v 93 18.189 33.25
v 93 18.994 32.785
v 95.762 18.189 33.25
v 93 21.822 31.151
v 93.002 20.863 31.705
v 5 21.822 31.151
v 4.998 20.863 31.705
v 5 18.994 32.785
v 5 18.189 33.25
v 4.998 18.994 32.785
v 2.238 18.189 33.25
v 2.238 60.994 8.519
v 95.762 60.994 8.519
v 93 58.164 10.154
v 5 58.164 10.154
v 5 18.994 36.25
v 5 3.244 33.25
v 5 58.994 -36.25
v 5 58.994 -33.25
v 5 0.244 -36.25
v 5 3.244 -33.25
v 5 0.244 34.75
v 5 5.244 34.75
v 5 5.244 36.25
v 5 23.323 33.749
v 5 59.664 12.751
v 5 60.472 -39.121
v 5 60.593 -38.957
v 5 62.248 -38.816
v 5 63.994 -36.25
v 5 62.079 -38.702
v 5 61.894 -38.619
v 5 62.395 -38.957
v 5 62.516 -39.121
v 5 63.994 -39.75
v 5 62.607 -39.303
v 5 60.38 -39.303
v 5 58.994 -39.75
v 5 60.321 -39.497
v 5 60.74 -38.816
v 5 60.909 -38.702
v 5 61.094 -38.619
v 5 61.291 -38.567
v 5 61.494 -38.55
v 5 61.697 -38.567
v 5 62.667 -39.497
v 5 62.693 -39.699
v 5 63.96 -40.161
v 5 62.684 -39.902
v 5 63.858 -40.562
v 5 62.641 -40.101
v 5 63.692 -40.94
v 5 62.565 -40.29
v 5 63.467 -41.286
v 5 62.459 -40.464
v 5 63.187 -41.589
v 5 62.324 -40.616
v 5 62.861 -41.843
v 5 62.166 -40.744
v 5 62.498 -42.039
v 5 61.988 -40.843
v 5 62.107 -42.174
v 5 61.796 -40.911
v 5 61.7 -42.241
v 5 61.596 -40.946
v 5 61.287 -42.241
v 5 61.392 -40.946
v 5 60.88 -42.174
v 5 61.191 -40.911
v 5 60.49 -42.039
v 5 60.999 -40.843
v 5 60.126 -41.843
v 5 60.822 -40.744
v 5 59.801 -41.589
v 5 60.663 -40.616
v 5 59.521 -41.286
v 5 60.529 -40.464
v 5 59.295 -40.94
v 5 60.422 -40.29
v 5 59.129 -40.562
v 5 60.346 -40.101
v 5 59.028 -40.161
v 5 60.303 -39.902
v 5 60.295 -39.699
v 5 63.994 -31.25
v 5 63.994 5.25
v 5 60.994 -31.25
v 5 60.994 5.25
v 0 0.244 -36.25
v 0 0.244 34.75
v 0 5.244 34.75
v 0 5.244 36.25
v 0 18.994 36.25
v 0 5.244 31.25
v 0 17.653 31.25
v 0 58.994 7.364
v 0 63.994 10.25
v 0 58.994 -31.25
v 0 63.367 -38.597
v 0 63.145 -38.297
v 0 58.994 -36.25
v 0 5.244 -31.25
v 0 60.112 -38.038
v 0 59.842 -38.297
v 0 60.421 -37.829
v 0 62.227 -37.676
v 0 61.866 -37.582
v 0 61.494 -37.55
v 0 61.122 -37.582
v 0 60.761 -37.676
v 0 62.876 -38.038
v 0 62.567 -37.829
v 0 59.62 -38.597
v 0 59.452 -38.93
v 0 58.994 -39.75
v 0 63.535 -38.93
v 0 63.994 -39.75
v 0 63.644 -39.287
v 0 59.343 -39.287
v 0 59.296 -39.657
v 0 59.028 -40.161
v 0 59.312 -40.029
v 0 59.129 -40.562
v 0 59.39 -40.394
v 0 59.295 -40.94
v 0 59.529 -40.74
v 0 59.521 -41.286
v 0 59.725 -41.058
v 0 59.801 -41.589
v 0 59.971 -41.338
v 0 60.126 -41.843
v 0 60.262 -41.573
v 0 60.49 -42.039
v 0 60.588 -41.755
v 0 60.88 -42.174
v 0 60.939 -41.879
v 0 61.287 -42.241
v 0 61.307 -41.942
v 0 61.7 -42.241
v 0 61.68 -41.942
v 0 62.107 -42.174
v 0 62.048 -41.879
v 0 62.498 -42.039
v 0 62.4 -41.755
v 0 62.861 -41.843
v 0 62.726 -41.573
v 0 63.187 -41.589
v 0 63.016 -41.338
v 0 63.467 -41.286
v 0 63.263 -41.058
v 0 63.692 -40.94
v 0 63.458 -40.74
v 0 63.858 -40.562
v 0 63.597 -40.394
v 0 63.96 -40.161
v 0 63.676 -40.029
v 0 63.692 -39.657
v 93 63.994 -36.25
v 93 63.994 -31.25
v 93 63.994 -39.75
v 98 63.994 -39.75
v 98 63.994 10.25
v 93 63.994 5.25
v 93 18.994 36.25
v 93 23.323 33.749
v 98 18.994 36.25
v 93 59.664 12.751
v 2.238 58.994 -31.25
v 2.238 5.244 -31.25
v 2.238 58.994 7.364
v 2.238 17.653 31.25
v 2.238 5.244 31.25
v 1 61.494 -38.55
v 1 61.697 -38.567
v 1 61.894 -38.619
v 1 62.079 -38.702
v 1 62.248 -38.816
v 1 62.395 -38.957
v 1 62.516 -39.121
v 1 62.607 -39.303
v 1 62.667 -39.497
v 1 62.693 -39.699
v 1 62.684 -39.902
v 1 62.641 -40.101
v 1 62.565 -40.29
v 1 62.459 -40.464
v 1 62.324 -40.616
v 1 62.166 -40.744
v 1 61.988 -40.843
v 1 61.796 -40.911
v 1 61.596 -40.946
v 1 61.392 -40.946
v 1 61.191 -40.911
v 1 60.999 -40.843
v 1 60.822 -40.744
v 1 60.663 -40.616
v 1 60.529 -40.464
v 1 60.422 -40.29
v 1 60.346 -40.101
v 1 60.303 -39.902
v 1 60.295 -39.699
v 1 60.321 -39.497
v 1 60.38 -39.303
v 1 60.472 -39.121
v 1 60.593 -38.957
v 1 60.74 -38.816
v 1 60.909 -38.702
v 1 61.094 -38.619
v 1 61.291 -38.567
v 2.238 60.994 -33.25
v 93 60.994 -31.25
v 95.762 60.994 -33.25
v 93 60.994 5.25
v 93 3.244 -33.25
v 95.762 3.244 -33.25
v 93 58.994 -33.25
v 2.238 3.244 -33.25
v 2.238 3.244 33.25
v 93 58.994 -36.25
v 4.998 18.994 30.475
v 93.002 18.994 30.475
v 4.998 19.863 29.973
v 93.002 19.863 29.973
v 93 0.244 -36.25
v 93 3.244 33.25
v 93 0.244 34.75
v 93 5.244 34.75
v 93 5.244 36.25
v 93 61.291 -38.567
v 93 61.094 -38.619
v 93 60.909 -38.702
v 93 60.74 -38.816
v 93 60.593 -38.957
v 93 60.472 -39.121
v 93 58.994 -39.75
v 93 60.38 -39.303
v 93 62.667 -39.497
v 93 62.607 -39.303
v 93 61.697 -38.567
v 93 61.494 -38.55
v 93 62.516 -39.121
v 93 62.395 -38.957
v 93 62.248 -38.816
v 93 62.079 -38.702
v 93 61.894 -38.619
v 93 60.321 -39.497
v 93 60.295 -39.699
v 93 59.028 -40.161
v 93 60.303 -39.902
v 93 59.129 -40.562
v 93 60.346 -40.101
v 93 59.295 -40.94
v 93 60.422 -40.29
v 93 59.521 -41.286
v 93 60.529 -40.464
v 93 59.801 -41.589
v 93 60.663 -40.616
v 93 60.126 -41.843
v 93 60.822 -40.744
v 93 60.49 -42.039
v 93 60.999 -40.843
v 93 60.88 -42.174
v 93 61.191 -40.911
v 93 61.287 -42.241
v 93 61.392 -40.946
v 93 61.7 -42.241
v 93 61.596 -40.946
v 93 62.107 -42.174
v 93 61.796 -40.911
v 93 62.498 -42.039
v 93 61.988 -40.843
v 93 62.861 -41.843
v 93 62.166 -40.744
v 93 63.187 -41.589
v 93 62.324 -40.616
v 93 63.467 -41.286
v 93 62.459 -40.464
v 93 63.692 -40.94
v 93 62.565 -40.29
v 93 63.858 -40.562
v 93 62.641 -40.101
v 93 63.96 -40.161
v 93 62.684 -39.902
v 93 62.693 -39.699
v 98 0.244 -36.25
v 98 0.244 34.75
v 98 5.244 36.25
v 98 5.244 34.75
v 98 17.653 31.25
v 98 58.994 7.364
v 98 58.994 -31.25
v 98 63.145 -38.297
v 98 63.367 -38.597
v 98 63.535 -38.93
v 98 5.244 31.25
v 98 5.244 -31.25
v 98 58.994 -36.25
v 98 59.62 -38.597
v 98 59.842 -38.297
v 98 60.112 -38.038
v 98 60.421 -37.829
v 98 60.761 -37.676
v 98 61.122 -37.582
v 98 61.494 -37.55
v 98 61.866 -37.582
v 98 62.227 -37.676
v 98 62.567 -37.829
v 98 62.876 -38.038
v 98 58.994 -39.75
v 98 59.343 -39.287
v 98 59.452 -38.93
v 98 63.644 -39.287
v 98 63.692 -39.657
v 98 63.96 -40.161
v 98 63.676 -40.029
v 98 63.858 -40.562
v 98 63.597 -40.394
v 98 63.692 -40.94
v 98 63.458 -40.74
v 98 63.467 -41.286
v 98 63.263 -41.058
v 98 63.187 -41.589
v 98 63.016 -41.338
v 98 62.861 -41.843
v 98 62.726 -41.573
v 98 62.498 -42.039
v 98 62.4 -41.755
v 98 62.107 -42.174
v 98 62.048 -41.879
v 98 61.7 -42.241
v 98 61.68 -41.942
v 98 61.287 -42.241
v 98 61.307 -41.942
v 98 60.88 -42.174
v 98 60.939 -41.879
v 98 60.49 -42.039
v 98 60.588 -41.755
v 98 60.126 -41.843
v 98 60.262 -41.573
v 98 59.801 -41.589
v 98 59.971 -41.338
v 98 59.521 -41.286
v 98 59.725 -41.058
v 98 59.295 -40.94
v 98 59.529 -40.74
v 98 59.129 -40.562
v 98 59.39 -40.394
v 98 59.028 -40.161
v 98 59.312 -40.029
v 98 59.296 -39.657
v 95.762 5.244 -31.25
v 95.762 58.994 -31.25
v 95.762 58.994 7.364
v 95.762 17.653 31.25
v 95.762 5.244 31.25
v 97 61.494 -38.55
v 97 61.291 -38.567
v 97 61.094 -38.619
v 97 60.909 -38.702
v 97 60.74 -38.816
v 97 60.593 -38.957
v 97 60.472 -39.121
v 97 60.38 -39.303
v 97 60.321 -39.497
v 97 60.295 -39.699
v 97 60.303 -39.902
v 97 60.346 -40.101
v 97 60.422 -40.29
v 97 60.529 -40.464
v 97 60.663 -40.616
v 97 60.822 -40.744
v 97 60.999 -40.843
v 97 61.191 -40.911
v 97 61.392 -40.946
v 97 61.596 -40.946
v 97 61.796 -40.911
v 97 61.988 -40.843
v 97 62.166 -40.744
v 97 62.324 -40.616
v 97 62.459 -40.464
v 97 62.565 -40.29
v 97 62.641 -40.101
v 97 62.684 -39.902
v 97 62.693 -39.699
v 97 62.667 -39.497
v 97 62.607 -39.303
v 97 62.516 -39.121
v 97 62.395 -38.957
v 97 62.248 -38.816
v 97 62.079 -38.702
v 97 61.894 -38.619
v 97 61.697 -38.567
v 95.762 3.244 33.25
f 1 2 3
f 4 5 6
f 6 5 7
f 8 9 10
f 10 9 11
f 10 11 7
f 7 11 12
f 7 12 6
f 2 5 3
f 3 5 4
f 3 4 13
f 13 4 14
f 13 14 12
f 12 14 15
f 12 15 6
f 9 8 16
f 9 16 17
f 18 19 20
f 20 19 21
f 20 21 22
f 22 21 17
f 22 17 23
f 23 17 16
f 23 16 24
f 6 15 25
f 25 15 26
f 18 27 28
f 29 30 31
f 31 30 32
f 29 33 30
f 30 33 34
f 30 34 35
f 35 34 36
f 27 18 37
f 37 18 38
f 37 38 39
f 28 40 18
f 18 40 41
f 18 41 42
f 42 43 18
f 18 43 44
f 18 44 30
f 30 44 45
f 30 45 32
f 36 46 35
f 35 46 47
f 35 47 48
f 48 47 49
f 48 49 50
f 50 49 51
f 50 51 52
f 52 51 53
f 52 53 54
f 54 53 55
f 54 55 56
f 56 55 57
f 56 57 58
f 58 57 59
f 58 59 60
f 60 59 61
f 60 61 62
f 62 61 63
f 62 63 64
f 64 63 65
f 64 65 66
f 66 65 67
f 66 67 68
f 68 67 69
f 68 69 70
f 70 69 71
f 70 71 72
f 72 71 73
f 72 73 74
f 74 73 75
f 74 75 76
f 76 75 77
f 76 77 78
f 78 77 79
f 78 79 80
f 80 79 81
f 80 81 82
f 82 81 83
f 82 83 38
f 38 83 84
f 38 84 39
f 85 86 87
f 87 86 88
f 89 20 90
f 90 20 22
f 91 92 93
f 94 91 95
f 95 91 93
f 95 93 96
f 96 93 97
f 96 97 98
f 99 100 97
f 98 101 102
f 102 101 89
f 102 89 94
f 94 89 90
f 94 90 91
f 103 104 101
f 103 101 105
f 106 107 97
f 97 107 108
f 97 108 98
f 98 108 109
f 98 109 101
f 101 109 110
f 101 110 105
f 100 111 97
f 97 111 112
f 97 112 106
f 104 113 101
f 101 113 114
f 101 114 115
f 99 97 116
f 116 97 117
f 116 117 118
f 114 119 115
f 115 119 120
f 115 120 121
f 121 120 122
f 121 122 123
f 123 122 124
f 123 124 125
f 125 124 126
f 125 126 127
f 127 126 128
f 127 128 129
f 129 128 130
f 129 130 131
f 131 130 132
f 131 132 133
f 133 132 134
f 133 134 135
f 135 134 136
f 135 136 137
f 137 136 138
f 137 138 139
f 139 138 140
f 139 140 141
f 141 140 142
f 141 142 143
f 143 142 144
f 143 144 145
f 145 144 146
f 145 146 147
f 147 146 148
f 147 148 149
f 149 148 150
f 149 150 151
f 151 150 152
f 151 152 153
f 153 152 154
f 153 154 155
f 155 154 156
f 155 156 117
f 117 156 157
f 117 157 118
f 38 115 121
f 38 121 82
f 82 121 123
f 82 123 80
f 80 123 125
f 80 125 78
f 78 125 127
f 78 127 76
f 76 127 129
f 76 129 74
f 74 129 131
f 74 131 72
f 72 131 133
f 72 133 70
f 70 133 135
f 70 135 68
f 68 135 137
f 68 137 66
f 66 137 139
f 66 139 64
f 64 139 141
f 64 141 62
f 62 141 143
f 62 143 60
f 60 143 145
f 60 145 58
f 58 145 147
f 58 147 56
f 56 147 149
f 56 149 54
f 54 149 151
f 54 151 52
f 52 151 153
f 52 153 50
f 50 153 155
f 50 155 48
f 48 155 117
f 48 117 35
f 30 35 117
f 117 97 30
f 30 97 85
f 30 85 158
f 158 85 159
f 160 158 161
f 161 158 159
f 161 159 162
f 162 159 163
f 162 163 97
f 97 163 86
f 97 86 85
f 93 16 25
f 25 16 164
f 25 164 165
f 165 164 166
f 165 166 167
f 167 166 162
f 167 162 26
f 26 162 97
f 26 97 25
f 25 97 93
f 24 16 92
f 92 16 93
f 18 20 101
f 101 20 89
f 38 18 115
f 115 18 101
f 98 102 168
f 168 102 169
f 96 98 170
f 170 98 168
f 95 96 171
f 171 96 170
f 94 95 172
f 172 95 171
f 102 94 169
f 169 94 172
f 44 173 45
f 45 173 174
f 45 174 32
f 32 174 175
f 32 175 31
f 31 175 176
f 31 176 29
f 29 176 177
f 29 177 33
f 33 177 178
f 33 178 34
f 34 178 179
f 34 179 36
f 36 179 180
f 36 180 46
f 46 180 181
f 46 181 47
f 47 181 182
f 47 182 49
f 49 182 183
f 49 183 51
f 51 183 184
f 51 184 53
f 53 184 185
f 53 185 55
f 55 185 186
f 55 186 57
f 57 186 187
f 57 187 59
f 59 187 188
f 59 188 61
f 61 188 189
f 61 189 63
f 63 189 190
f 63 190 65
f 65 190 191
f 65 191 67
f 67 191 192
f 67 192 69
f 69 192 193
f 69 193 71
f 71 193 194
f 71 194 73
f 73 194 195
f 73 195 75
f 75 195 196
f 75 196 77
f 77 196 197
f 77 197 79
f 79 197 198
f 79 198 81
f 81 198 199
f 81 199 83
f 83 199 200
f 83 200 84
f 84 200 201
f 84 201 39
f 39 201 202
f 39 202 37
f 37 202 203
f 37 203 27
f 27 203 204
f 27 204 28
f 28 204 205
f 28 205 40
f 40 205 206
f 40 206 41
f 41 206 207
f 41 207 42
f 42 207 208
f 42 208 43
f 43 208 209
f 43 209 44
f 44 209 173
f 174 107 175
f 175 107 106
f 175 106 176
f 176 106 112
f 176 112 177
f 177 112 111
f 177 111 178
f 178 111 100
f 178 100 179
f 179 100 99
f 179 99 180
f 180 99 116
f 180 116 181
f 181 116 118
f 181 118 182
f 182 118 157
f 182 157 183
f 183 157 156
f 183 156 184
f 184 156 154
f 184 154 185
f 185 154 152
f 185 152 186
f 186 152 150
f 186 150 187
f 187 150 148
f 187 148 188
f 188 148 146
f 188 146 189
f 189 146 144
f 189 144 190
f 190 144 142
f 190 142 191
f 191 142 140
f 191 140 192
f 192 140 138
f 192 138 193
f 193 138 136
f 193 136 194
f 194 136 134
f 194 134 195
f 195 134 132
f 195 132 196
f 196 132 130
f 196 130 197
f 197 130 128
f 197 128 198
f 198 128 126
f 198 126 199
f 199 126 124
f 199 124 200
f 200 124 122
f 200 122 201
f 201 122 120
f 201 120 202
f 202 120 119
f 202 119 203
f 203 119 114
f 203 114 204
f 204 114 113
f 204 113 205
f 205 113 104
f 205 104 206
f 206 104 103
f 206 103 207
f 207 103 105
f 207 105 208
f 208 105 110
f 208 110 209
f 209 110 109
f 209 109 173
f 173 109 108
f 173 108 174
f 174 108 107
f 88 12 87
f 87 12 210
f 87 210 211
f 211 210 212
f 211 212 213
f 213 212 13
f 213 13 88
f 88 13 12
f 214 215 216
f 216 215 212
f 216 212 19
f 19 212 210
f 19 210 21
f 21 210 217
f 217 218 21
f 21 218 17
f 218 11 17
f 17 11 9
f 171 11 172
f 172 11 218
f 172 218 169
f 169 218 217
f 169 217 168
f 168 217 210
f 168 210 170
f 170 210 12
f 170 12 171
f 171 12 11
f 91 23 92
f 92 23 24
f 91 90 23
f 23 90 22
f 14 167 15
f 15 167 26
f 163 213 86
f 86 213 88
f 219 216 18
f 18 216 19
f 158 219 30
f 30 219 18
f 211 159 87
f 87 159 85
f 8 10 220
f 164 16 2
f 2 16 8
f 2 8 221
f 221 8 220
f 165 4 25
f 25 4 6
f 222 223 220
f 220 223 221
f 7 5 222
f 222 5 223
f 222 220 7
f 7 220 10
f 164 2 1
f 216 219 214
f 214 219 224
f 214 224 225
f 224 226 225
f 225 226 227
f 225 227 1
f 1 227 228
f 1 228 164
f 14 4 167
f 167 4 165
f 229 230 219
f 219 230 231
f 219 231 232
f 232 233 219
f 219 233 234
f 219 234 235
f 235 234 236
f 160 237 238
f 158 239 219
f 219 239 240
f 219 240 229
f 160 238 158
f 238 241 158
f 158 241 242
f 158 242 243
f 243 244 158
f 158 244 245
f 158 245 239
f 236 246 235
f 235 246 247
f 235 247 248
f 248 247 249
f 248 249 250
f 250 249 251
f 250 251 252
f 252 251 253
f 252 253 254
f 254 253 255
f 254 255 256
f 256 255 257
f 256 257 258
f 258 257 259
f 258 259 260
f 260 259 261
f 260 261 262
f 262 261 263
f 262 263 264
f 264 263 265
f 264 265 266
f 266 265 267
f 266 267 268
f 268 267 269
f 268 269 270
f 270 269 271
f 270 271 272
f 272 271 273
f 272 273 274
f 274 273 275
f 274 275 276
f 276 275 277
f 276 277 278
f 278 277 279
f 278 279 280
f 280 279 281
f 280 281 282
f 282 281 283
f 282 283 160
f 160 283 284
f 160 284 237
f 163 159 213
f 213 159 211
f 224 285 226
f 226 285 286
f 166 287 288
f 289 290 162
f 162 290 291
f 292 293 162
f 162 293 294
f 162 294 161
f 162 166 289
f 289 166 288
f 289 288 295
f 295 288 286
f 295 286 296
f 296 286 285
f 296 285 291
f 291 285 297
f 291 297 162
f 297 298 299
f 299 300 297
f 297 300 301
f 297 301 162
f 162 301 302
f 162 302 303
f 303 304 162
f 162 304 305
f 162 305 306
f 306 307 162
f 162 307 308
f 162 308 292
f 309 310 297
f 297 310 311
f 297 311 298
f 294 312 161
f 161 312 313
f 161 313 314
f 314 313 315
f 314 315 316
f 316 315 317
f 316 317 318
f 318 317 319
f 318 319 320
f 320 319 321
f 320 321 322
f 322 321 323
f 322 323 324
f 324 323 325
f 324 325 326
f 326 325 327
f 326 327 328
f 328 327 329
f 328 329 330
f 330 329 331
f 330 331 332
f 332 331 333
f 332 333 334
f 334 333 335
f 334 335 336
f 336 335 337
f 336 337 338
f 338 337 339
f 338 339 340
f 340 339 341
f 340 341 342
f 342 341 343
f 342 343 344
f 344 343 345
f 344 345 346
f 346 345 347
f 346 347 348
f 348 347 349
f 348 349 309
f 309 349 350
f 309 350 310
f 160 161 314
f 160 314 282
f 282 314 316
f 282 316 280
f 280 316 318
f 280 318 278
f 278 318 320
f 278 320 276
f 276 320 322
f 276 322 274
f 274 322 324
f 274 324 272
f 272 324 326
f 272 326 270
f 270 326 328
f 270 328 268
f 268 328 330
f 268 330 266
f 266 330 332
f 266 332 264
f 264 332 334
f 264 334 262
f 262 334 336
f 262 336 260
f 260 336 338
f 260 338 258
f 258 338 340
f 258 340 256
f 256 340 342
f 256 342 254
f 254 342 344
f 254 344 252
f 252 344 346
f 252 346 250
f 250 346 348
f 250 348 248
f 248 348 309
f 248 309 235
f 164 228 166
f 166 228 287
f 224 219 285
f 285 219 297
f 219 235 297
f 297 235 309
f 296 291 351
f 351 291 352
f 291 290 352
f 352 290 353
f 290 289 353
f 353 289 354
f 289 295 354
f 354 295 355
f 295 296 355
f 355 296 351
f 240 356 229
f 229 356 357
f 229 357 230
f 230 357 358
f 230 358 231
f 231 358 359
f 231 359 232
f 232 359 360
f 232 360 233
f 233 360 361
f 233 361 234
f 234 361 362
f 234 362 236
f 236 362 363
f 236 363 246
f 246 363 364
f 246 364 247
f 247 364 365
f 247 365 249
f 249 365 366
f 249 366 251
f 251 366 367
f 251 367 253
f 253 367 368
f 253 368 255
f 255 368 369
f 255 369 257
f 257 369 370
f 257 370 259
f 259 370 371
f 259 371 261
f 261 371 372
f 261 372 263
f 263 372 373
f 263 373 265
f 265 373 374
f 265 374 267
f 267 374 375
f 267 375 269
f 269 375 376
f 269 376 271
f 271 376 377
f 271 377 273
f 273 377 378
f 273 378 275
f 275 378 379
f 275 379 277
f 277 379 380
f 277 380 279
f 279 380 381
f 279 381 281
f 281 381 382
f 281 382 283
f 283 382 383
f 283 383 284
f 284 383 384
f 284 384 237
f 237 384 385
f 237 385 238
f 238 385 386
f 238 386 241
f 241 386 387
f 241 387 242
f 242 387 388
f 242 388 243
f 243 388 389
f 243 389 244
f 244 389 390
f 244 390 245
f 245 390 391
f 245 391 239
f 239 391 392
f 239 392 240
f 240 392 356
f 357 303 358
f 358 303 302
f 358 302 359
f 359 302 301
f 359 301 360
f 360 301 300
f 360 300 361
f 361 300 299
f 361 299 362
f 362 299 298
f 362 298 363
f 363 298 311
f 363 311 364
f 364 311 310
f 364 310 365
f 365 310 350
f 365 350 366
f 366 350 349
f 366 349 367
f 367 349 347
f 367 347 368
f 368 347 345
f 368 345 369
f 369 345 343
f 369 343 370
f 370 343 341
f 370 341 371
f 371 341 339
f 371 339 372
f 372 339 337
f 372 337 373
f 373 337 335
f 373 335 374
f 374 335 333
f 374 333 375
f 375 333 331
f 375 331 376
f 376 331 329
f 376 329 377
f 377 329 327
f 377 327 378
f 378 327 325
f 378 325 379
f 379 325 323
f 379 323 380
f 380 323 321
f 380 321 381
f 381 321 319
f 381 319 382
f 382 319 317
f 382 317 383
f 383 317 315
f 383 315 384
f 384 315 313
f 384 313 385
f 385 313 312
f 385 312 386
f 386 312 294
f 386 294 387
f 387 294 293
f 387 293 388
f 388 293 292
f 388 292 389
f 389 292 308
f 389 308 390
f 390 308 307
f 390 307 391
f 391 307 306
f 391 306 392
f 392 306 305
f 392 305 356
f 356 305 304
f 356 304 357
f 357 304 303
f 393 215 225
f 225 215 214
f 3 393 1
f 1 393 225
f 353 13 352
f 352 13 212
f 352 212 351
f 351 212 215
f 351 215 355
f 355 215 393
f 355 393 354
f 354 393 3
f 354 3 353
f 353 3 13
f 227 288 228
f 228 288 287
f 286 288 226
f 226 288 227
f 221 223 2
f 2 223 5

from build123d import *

# Parameters (mm, degrees)
BOSS_EXTRUDE1_DEPTH                             = 5
CSK_FOR_M2_OVAL_HEAD_MACHINE_SCREW1_D           = 2.4
CSK_FOR_M2_OVAL_HEAD_MACHINE_SCREW1_CSINK_D     = 4.4
CSK_FOR_M2_OVAL_HEAD_MACHINE_SCREW1_CSINK_ANGLE = 90
CUT_EXTRUDE1_DEPTH                              = 2.762
SKETCH9_W                                       = 5
SKETCH9_H                                       = 5
CUT_EXTRUDE3_DEPTH                              = 1.5
BOSS_EXTRUDE2_DEPTH                             = 44
BOSS_EXTRUDE5_START                             = 2.76
BOSS_EXTRUDE5_DEPTH                             = 44.5


with BuildPart() as part:
    # Sketch1 → Boss-Extrude1 (new body)
    with BuildSketch(Plane(origin=(0, 0, 0), x_dir=(0, 0, -1), z_dir=(1, 0, 0))):
        with BuildLine():
            Line((-36.25, 0.243748214), (36.25, 0.243748214))
            Line((36.25, 0.243748214), (36.25, 58.993748214))
            Line((36.25, 58.993748214), (39.75, 58.993748214))
            ThreePointArc((39.75, 58.993748214), (42.25, 61.493748214), (39.75, 63.993748214))
            Line((39.75, 63.993748214), (36.25, 63.993748214))
            Line((36.25, 63.993748214), (-10.25, 63.993748214))
            Line((-10.25, 63.993748214), (-36.25, 18.993748214))
            Line((-36.25, 18.993748214), (-36.25, 0.243748214))
        make_face()
        Polygon((31.25, 5.243748214), (-31.25, 5.243748214), (-31.25, 17.653143244), (-18.920674634, 38.992360224), (-7.364317129, 58.993748214), (31.25, 58.993748214), align=None, mode=Mode.SUBTRACT)
    extrude(amount=BOSS_EXTRUDE1_DEPTH)

    # CSK for M2 Oval Head Machine Screw1 (through all)
    with Locations(Plane.ZY):
        with Locations((-39.75, 61.493748214)):
            CounterSinkHole(CSK_FOR_M2_OVAL_HEAD_MACHINE_SCREW1_D / 2, CSK_FOR_M2_OVAL_HEAD_MACHINE_SCREW1_CSINK_D / 2, counter_sink_angle=CSK_FOR_M2_OVAL_HEAD_MACHINE_SCREW1_CSINK_ANGLE)

    # Sketch6 → Cut-Extrude1 (cut)
    with BuildSketch(Plane(origin=(5, 0, 0), x_dir=(0, 0, -1), z_dir=(1, 0, 0))):
        Polygon((33.25, 60.993748214), (33.25, 3.243748214), (-33.25, 3.243748214), (-33.25, 18.189385232), (-8.518590277, 60.993748214), align=None)
    extrude(amount=-CUT_EXTRUDE1_DEPTH, mode=Mode.SUBTRACT)

    # Sketch9 → Cut-Extrude3 (cut)
    with BuildSketch(Plane.XY.offset(36.25)):
        with Locations((2.5, 2.743748214)):
            Rectangle(SKETCH9_W, SKETCH9_H)
    extrude(amount=-CUT_EXTRUDE3_DEPTH, mode=Mode.SUBTRACT)

    # Sketch10 → Boss-Extrude2 (add)
    with BuildSketch(Plane(origin=(5, 0, 0), x_dir=(0, 0, -1), z_dir=(1, 0, 0))):
        Polygon((-10.25, 63.993748214), (-5.25, 63.993748214), (-5.25, 60.993748214), (-8.518590277, 60.993748214), (-10.15379277, 58.163590054), (-12.751387989, 59.664422848), align=None)
        Polygon((36.25, 58.993748214), (36.25, 63.993748214), (31.25, 63.993748214), (31.25, 60.993748214), (33.25, 60.993748214), (33.25, 58.993748214), align=None)
        Polygon((-36.25, 18.993748214), (-33.748612011, 23.32307358), (-31.151016791, 21.822240786), (-32.785256944, 18.993748214), align=None)
    extrude(amount=BOSS_EXTRUDE2_DEPTH)

    # Sketch14 → Boss-Extrude5 (add)
    with BuildSketch(Plane(origin=(2.238, 0, 0), x_dir=(0, 0, -1), z_dir=(1, 0, 0)).offset(BOSS_EXTRUDE5_START)):
        Polygon((-32.785256944, 18.993748214), (-30.47542824, 18.993748214), (-29.973344698, 19.862738959), (-31.705074845, 20.863294155), align=None)
    extrude(amount=BOSS_EXTRUDE5_DEPTH)

    # Mirror1: part across plane


with BuildPart() as part_1:
    add(part.part)
    add(part.part.mirror(Plane(origin=(49, 0, 0), x_dir=(0, 0, 1), z_dir=(1, 0, 0))))


solid = part_1.part
